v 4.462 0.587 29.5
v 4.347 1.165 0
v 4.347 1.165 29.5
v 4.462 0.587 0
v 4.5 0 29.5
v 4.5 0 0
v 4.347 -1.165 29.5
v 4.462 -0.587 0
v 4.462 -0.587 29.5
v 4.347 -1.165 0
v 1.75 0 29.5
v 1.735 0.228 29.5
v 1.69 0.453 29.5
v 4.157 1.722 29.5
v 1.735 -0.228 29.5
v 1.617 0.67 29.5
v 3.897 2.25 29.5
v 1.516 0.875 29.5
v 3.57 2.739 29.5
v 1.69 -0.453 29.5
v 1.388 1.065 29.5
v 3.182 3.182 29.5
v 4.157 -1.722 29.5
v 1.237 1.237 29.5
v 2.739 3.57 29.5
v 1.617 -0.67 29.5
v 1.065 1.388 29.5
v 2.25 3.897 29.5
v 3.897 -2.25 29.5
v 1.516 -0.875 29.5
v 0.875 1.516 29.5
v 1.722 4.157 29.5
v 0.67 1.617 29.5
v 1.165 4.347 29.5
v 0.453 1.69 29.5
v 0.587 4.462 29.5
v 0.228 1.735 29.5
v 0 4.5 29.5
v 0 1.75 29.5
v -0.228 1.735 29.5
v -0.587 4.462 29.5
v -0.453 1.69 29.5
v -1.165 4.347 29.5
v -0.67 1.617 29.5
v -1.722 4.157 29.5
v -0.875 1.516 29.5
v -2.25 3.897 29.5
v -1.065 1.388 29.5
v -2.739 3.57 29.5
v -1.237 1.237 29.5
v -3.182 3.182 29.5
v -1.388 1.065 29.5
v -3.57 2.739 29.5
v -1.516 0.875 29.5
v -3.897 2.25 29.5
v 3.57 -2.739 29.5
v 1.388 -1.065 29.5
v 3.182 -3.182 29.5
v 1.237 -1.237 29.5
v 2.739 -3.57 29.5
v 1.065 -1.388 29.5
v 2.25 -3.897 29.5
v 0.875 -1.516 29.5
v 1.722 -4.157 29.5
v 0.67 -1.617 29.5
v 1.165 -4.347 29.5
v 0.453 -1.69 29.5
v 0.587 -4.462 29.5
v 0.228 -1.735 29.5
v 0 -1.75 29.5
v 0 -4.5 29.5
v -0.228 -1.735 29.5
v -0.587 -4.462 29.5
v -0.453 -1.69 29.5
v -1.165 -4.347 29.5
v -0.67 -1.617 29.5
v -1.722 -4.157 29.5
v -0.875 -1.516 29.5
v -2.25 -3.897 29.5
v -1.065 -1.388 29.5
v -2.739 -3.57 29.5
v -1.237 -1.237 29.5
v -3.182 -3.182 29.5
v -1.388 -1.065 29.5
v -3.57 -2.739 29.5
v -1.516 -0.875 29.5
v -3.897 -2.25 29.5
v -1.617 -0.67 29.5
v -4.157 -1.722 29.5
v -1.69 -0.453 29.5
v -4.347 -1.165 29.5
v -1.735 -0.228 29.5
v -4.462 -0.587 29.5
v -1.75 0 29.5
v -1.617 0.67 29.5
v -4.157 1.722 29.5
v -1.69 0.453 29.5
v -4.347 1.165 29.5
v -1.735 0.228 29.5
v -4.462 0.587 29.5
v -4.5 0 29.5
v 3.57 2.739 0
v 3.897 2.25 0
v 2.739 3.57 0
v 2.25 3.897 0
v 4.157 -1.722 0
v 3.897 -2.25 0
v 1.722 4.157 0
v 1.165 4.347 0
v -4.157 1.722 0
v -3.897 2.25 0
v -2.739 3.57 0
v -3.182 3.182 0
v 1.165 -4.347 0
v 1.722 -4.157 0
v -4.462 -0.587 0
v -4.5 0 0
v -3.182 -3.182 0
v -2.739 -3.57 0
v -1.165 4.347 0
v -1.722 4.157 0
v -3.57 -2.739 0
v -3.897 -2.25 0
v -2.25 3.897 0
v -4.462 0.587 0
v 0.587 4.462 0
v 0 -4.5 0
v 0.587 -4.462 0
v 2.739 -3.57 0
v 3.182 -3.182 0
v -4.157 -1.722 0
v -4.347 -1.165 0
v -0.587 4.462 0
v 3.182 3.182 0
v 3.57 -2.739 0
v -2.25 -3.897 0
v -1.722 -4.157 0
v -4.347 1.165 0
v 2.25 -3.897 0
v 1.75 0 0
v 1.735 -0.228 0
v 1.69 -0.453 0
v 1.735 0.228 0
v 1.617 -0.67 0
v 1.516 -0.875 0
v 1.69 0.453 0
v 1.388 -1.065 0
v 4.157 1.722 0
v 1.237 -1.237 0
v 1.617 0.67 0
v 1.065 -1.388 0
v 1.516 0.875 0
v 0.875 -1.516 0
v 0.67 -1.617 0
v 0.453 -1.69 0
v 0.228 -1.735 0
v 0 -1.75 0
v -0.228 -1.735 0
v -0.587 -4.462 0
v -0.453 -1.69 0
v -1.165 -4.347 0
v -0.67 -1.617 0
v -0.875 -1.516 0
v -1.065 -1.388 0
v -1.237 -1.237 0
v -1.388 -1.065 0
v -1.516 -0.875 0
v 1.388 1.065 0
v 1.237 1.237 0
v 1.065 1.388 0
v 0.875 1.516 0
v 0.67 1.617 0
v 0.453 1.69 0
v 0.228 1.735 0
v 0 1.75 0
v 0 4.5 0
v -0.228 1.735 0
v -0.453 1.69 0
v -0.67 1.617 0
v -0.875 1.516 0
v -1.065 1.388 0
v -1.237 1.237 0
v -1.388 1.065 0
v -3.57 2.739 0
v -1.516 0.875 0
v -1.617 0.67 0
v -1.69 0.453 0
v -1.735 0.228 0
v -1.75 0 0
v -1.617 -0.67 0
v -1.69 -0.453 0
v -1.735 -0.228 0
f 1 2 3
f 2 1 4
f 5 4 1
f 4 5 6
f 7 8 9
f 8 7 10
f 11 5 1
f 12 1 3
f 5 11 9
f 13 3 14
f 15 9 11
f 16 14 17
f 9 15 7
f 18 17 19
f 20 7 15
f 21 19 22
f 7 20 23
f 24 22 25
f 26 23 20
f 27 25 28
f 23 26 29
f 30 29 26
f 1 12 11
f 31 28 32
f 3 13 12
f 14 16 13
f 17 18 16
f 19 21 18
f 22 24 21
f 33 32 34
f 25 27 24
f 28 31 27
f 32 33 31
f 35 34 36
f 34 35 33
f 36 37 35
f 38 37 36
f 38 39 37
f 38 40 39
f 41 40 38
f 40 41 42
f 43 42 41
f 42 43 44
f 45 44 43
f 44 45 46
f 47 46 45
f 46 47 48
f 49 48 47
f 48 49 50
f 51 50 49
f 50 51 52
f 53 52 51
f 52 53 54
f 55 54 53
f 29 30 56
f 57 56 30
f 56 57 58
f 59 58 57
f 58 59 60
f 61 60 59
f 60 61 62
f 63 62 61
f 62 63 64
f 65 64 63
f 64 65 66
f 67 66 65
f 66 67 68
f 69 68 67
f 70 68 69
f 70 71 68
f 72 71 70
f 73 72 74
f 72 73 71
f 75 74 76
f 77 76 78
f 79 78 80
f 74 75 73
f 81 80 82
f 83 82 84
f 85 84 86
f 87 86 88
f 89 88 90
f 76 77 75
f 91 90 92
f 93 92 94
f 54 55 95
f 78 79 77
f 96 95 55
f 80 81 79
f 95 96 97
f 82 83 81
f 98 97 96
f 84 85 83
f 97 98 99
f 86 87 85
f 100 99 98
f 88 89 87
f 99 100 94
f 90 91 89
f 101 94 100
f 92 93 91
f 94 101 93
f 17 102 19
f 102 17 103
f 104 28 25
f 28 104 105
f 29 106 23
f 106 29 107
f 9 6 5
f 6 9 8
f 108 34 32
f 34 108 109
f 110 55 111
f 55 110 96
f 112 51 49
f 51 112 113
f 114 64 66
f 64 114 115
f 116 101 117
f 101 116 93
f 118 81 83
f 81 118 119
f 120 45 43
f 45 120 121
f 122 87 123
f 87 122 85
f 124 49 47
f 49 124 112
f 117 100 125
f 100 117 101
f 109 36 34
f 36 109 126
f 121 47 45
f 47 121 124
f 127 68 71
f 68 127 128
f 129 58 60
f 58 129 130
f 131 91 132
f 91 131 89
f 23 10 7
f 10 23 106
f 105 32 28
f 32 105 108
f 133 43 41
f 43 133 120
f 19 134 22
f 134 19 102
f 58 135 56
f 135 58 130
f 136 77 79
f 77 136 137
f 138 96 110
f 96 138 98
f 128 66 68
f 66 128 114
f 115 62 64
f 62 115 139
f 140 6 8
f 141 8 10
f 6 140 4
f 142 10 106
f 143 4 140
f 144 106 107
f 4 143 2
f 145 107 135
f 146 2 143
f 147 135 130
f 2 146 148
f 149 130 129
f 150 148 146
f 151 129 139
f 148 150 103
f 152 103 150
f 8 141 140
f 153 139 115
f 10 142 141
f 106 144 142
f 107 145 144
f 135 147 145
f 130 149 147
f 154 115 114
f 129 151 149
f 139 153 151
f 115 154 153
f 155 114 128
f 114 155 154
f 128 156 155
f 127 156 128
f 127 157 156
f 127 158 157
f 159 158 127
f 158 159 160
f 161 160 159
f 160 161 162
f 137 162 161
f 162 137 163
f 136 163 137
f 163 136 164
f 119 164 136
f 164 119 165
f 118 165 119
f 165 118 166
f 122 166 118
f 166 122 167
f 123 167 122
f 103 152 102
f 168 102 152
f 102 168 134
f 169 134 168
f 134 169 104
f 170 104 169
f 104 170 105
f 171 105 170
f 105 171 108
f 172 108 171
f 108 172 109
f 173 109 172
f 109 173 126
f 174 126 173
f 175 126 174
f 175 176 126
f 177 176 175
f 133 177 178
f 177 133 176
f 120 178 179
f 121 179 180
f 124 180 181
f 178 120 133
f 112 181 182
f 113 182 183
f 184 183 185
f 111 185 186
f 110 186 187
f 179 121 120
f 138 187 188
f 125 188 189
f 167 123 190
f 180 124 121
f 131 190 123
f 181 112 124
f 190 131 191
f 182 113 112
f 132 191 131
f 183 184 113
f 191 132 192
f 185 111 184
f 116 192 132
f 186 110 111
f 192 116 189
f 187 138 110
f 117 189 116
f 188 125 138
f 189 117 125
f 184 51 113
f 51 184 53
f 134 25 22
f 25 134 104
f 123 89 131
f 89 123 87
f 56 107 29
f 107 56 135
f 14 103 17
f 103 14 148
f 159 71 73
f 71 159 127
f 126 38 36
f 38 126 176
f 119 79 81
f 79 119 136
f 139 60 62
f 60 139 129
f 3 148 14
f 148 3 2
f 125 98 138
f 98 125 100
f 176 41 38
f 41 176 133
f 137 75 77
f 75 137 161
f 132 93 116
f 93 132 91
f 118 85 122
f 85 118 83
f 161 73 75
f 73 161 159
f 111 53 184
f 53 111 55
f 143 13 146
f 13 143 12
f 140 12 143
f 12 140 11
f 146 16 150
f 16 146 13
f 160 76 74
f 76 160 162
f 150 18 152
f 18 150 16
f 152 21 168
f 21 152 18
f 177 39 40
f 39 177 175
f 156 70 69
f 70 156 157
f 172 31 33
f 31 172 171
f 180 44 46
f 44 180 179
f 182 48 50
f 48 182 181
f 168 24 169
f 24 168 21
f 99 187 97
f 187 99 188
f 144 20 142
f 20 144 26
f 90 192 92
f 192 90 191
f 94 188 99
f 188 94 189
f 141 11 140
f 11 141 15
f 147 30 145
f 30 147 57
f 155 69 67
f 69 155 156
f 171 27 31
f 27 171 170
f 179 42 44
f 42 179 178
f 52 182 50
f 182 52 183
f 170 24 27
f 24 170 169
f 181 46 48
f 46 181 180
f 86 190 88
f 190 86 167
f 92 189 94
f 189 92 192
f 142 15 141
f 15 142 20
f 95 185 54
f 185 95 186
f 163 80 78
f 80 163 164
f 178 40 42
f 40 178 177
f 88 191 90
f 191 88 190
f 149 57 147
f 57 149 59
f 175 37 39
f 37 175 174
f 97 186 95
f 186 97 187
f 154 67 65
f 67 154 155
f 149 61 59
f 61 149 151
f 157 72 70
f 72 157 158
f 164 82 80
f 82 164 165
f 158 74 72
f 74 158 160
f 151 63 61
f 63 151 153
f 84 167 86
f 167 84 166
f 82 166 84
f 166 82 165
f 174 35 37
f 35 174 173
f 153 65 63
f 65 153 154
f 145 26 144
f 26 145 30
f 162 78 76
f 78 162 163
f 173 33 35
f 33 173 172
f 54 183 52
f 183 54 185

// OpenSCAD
// Gen-DG — frame standoff tube between stator and an endbell, on each M3 frame rod (outside rotor OD).
// Print x4. Height = frame_standoff_h (rotor + steel + hub + collar + running clearance).
include <parameters.scad>;
$fn = 48;
difference() {
    cylinder(d=standoff_od, h=frame_standoff_h);
    translate([0, 0, -0.1]) cylinder(d=m3_clear, h=frame_standoff_h + 0.2);
}
